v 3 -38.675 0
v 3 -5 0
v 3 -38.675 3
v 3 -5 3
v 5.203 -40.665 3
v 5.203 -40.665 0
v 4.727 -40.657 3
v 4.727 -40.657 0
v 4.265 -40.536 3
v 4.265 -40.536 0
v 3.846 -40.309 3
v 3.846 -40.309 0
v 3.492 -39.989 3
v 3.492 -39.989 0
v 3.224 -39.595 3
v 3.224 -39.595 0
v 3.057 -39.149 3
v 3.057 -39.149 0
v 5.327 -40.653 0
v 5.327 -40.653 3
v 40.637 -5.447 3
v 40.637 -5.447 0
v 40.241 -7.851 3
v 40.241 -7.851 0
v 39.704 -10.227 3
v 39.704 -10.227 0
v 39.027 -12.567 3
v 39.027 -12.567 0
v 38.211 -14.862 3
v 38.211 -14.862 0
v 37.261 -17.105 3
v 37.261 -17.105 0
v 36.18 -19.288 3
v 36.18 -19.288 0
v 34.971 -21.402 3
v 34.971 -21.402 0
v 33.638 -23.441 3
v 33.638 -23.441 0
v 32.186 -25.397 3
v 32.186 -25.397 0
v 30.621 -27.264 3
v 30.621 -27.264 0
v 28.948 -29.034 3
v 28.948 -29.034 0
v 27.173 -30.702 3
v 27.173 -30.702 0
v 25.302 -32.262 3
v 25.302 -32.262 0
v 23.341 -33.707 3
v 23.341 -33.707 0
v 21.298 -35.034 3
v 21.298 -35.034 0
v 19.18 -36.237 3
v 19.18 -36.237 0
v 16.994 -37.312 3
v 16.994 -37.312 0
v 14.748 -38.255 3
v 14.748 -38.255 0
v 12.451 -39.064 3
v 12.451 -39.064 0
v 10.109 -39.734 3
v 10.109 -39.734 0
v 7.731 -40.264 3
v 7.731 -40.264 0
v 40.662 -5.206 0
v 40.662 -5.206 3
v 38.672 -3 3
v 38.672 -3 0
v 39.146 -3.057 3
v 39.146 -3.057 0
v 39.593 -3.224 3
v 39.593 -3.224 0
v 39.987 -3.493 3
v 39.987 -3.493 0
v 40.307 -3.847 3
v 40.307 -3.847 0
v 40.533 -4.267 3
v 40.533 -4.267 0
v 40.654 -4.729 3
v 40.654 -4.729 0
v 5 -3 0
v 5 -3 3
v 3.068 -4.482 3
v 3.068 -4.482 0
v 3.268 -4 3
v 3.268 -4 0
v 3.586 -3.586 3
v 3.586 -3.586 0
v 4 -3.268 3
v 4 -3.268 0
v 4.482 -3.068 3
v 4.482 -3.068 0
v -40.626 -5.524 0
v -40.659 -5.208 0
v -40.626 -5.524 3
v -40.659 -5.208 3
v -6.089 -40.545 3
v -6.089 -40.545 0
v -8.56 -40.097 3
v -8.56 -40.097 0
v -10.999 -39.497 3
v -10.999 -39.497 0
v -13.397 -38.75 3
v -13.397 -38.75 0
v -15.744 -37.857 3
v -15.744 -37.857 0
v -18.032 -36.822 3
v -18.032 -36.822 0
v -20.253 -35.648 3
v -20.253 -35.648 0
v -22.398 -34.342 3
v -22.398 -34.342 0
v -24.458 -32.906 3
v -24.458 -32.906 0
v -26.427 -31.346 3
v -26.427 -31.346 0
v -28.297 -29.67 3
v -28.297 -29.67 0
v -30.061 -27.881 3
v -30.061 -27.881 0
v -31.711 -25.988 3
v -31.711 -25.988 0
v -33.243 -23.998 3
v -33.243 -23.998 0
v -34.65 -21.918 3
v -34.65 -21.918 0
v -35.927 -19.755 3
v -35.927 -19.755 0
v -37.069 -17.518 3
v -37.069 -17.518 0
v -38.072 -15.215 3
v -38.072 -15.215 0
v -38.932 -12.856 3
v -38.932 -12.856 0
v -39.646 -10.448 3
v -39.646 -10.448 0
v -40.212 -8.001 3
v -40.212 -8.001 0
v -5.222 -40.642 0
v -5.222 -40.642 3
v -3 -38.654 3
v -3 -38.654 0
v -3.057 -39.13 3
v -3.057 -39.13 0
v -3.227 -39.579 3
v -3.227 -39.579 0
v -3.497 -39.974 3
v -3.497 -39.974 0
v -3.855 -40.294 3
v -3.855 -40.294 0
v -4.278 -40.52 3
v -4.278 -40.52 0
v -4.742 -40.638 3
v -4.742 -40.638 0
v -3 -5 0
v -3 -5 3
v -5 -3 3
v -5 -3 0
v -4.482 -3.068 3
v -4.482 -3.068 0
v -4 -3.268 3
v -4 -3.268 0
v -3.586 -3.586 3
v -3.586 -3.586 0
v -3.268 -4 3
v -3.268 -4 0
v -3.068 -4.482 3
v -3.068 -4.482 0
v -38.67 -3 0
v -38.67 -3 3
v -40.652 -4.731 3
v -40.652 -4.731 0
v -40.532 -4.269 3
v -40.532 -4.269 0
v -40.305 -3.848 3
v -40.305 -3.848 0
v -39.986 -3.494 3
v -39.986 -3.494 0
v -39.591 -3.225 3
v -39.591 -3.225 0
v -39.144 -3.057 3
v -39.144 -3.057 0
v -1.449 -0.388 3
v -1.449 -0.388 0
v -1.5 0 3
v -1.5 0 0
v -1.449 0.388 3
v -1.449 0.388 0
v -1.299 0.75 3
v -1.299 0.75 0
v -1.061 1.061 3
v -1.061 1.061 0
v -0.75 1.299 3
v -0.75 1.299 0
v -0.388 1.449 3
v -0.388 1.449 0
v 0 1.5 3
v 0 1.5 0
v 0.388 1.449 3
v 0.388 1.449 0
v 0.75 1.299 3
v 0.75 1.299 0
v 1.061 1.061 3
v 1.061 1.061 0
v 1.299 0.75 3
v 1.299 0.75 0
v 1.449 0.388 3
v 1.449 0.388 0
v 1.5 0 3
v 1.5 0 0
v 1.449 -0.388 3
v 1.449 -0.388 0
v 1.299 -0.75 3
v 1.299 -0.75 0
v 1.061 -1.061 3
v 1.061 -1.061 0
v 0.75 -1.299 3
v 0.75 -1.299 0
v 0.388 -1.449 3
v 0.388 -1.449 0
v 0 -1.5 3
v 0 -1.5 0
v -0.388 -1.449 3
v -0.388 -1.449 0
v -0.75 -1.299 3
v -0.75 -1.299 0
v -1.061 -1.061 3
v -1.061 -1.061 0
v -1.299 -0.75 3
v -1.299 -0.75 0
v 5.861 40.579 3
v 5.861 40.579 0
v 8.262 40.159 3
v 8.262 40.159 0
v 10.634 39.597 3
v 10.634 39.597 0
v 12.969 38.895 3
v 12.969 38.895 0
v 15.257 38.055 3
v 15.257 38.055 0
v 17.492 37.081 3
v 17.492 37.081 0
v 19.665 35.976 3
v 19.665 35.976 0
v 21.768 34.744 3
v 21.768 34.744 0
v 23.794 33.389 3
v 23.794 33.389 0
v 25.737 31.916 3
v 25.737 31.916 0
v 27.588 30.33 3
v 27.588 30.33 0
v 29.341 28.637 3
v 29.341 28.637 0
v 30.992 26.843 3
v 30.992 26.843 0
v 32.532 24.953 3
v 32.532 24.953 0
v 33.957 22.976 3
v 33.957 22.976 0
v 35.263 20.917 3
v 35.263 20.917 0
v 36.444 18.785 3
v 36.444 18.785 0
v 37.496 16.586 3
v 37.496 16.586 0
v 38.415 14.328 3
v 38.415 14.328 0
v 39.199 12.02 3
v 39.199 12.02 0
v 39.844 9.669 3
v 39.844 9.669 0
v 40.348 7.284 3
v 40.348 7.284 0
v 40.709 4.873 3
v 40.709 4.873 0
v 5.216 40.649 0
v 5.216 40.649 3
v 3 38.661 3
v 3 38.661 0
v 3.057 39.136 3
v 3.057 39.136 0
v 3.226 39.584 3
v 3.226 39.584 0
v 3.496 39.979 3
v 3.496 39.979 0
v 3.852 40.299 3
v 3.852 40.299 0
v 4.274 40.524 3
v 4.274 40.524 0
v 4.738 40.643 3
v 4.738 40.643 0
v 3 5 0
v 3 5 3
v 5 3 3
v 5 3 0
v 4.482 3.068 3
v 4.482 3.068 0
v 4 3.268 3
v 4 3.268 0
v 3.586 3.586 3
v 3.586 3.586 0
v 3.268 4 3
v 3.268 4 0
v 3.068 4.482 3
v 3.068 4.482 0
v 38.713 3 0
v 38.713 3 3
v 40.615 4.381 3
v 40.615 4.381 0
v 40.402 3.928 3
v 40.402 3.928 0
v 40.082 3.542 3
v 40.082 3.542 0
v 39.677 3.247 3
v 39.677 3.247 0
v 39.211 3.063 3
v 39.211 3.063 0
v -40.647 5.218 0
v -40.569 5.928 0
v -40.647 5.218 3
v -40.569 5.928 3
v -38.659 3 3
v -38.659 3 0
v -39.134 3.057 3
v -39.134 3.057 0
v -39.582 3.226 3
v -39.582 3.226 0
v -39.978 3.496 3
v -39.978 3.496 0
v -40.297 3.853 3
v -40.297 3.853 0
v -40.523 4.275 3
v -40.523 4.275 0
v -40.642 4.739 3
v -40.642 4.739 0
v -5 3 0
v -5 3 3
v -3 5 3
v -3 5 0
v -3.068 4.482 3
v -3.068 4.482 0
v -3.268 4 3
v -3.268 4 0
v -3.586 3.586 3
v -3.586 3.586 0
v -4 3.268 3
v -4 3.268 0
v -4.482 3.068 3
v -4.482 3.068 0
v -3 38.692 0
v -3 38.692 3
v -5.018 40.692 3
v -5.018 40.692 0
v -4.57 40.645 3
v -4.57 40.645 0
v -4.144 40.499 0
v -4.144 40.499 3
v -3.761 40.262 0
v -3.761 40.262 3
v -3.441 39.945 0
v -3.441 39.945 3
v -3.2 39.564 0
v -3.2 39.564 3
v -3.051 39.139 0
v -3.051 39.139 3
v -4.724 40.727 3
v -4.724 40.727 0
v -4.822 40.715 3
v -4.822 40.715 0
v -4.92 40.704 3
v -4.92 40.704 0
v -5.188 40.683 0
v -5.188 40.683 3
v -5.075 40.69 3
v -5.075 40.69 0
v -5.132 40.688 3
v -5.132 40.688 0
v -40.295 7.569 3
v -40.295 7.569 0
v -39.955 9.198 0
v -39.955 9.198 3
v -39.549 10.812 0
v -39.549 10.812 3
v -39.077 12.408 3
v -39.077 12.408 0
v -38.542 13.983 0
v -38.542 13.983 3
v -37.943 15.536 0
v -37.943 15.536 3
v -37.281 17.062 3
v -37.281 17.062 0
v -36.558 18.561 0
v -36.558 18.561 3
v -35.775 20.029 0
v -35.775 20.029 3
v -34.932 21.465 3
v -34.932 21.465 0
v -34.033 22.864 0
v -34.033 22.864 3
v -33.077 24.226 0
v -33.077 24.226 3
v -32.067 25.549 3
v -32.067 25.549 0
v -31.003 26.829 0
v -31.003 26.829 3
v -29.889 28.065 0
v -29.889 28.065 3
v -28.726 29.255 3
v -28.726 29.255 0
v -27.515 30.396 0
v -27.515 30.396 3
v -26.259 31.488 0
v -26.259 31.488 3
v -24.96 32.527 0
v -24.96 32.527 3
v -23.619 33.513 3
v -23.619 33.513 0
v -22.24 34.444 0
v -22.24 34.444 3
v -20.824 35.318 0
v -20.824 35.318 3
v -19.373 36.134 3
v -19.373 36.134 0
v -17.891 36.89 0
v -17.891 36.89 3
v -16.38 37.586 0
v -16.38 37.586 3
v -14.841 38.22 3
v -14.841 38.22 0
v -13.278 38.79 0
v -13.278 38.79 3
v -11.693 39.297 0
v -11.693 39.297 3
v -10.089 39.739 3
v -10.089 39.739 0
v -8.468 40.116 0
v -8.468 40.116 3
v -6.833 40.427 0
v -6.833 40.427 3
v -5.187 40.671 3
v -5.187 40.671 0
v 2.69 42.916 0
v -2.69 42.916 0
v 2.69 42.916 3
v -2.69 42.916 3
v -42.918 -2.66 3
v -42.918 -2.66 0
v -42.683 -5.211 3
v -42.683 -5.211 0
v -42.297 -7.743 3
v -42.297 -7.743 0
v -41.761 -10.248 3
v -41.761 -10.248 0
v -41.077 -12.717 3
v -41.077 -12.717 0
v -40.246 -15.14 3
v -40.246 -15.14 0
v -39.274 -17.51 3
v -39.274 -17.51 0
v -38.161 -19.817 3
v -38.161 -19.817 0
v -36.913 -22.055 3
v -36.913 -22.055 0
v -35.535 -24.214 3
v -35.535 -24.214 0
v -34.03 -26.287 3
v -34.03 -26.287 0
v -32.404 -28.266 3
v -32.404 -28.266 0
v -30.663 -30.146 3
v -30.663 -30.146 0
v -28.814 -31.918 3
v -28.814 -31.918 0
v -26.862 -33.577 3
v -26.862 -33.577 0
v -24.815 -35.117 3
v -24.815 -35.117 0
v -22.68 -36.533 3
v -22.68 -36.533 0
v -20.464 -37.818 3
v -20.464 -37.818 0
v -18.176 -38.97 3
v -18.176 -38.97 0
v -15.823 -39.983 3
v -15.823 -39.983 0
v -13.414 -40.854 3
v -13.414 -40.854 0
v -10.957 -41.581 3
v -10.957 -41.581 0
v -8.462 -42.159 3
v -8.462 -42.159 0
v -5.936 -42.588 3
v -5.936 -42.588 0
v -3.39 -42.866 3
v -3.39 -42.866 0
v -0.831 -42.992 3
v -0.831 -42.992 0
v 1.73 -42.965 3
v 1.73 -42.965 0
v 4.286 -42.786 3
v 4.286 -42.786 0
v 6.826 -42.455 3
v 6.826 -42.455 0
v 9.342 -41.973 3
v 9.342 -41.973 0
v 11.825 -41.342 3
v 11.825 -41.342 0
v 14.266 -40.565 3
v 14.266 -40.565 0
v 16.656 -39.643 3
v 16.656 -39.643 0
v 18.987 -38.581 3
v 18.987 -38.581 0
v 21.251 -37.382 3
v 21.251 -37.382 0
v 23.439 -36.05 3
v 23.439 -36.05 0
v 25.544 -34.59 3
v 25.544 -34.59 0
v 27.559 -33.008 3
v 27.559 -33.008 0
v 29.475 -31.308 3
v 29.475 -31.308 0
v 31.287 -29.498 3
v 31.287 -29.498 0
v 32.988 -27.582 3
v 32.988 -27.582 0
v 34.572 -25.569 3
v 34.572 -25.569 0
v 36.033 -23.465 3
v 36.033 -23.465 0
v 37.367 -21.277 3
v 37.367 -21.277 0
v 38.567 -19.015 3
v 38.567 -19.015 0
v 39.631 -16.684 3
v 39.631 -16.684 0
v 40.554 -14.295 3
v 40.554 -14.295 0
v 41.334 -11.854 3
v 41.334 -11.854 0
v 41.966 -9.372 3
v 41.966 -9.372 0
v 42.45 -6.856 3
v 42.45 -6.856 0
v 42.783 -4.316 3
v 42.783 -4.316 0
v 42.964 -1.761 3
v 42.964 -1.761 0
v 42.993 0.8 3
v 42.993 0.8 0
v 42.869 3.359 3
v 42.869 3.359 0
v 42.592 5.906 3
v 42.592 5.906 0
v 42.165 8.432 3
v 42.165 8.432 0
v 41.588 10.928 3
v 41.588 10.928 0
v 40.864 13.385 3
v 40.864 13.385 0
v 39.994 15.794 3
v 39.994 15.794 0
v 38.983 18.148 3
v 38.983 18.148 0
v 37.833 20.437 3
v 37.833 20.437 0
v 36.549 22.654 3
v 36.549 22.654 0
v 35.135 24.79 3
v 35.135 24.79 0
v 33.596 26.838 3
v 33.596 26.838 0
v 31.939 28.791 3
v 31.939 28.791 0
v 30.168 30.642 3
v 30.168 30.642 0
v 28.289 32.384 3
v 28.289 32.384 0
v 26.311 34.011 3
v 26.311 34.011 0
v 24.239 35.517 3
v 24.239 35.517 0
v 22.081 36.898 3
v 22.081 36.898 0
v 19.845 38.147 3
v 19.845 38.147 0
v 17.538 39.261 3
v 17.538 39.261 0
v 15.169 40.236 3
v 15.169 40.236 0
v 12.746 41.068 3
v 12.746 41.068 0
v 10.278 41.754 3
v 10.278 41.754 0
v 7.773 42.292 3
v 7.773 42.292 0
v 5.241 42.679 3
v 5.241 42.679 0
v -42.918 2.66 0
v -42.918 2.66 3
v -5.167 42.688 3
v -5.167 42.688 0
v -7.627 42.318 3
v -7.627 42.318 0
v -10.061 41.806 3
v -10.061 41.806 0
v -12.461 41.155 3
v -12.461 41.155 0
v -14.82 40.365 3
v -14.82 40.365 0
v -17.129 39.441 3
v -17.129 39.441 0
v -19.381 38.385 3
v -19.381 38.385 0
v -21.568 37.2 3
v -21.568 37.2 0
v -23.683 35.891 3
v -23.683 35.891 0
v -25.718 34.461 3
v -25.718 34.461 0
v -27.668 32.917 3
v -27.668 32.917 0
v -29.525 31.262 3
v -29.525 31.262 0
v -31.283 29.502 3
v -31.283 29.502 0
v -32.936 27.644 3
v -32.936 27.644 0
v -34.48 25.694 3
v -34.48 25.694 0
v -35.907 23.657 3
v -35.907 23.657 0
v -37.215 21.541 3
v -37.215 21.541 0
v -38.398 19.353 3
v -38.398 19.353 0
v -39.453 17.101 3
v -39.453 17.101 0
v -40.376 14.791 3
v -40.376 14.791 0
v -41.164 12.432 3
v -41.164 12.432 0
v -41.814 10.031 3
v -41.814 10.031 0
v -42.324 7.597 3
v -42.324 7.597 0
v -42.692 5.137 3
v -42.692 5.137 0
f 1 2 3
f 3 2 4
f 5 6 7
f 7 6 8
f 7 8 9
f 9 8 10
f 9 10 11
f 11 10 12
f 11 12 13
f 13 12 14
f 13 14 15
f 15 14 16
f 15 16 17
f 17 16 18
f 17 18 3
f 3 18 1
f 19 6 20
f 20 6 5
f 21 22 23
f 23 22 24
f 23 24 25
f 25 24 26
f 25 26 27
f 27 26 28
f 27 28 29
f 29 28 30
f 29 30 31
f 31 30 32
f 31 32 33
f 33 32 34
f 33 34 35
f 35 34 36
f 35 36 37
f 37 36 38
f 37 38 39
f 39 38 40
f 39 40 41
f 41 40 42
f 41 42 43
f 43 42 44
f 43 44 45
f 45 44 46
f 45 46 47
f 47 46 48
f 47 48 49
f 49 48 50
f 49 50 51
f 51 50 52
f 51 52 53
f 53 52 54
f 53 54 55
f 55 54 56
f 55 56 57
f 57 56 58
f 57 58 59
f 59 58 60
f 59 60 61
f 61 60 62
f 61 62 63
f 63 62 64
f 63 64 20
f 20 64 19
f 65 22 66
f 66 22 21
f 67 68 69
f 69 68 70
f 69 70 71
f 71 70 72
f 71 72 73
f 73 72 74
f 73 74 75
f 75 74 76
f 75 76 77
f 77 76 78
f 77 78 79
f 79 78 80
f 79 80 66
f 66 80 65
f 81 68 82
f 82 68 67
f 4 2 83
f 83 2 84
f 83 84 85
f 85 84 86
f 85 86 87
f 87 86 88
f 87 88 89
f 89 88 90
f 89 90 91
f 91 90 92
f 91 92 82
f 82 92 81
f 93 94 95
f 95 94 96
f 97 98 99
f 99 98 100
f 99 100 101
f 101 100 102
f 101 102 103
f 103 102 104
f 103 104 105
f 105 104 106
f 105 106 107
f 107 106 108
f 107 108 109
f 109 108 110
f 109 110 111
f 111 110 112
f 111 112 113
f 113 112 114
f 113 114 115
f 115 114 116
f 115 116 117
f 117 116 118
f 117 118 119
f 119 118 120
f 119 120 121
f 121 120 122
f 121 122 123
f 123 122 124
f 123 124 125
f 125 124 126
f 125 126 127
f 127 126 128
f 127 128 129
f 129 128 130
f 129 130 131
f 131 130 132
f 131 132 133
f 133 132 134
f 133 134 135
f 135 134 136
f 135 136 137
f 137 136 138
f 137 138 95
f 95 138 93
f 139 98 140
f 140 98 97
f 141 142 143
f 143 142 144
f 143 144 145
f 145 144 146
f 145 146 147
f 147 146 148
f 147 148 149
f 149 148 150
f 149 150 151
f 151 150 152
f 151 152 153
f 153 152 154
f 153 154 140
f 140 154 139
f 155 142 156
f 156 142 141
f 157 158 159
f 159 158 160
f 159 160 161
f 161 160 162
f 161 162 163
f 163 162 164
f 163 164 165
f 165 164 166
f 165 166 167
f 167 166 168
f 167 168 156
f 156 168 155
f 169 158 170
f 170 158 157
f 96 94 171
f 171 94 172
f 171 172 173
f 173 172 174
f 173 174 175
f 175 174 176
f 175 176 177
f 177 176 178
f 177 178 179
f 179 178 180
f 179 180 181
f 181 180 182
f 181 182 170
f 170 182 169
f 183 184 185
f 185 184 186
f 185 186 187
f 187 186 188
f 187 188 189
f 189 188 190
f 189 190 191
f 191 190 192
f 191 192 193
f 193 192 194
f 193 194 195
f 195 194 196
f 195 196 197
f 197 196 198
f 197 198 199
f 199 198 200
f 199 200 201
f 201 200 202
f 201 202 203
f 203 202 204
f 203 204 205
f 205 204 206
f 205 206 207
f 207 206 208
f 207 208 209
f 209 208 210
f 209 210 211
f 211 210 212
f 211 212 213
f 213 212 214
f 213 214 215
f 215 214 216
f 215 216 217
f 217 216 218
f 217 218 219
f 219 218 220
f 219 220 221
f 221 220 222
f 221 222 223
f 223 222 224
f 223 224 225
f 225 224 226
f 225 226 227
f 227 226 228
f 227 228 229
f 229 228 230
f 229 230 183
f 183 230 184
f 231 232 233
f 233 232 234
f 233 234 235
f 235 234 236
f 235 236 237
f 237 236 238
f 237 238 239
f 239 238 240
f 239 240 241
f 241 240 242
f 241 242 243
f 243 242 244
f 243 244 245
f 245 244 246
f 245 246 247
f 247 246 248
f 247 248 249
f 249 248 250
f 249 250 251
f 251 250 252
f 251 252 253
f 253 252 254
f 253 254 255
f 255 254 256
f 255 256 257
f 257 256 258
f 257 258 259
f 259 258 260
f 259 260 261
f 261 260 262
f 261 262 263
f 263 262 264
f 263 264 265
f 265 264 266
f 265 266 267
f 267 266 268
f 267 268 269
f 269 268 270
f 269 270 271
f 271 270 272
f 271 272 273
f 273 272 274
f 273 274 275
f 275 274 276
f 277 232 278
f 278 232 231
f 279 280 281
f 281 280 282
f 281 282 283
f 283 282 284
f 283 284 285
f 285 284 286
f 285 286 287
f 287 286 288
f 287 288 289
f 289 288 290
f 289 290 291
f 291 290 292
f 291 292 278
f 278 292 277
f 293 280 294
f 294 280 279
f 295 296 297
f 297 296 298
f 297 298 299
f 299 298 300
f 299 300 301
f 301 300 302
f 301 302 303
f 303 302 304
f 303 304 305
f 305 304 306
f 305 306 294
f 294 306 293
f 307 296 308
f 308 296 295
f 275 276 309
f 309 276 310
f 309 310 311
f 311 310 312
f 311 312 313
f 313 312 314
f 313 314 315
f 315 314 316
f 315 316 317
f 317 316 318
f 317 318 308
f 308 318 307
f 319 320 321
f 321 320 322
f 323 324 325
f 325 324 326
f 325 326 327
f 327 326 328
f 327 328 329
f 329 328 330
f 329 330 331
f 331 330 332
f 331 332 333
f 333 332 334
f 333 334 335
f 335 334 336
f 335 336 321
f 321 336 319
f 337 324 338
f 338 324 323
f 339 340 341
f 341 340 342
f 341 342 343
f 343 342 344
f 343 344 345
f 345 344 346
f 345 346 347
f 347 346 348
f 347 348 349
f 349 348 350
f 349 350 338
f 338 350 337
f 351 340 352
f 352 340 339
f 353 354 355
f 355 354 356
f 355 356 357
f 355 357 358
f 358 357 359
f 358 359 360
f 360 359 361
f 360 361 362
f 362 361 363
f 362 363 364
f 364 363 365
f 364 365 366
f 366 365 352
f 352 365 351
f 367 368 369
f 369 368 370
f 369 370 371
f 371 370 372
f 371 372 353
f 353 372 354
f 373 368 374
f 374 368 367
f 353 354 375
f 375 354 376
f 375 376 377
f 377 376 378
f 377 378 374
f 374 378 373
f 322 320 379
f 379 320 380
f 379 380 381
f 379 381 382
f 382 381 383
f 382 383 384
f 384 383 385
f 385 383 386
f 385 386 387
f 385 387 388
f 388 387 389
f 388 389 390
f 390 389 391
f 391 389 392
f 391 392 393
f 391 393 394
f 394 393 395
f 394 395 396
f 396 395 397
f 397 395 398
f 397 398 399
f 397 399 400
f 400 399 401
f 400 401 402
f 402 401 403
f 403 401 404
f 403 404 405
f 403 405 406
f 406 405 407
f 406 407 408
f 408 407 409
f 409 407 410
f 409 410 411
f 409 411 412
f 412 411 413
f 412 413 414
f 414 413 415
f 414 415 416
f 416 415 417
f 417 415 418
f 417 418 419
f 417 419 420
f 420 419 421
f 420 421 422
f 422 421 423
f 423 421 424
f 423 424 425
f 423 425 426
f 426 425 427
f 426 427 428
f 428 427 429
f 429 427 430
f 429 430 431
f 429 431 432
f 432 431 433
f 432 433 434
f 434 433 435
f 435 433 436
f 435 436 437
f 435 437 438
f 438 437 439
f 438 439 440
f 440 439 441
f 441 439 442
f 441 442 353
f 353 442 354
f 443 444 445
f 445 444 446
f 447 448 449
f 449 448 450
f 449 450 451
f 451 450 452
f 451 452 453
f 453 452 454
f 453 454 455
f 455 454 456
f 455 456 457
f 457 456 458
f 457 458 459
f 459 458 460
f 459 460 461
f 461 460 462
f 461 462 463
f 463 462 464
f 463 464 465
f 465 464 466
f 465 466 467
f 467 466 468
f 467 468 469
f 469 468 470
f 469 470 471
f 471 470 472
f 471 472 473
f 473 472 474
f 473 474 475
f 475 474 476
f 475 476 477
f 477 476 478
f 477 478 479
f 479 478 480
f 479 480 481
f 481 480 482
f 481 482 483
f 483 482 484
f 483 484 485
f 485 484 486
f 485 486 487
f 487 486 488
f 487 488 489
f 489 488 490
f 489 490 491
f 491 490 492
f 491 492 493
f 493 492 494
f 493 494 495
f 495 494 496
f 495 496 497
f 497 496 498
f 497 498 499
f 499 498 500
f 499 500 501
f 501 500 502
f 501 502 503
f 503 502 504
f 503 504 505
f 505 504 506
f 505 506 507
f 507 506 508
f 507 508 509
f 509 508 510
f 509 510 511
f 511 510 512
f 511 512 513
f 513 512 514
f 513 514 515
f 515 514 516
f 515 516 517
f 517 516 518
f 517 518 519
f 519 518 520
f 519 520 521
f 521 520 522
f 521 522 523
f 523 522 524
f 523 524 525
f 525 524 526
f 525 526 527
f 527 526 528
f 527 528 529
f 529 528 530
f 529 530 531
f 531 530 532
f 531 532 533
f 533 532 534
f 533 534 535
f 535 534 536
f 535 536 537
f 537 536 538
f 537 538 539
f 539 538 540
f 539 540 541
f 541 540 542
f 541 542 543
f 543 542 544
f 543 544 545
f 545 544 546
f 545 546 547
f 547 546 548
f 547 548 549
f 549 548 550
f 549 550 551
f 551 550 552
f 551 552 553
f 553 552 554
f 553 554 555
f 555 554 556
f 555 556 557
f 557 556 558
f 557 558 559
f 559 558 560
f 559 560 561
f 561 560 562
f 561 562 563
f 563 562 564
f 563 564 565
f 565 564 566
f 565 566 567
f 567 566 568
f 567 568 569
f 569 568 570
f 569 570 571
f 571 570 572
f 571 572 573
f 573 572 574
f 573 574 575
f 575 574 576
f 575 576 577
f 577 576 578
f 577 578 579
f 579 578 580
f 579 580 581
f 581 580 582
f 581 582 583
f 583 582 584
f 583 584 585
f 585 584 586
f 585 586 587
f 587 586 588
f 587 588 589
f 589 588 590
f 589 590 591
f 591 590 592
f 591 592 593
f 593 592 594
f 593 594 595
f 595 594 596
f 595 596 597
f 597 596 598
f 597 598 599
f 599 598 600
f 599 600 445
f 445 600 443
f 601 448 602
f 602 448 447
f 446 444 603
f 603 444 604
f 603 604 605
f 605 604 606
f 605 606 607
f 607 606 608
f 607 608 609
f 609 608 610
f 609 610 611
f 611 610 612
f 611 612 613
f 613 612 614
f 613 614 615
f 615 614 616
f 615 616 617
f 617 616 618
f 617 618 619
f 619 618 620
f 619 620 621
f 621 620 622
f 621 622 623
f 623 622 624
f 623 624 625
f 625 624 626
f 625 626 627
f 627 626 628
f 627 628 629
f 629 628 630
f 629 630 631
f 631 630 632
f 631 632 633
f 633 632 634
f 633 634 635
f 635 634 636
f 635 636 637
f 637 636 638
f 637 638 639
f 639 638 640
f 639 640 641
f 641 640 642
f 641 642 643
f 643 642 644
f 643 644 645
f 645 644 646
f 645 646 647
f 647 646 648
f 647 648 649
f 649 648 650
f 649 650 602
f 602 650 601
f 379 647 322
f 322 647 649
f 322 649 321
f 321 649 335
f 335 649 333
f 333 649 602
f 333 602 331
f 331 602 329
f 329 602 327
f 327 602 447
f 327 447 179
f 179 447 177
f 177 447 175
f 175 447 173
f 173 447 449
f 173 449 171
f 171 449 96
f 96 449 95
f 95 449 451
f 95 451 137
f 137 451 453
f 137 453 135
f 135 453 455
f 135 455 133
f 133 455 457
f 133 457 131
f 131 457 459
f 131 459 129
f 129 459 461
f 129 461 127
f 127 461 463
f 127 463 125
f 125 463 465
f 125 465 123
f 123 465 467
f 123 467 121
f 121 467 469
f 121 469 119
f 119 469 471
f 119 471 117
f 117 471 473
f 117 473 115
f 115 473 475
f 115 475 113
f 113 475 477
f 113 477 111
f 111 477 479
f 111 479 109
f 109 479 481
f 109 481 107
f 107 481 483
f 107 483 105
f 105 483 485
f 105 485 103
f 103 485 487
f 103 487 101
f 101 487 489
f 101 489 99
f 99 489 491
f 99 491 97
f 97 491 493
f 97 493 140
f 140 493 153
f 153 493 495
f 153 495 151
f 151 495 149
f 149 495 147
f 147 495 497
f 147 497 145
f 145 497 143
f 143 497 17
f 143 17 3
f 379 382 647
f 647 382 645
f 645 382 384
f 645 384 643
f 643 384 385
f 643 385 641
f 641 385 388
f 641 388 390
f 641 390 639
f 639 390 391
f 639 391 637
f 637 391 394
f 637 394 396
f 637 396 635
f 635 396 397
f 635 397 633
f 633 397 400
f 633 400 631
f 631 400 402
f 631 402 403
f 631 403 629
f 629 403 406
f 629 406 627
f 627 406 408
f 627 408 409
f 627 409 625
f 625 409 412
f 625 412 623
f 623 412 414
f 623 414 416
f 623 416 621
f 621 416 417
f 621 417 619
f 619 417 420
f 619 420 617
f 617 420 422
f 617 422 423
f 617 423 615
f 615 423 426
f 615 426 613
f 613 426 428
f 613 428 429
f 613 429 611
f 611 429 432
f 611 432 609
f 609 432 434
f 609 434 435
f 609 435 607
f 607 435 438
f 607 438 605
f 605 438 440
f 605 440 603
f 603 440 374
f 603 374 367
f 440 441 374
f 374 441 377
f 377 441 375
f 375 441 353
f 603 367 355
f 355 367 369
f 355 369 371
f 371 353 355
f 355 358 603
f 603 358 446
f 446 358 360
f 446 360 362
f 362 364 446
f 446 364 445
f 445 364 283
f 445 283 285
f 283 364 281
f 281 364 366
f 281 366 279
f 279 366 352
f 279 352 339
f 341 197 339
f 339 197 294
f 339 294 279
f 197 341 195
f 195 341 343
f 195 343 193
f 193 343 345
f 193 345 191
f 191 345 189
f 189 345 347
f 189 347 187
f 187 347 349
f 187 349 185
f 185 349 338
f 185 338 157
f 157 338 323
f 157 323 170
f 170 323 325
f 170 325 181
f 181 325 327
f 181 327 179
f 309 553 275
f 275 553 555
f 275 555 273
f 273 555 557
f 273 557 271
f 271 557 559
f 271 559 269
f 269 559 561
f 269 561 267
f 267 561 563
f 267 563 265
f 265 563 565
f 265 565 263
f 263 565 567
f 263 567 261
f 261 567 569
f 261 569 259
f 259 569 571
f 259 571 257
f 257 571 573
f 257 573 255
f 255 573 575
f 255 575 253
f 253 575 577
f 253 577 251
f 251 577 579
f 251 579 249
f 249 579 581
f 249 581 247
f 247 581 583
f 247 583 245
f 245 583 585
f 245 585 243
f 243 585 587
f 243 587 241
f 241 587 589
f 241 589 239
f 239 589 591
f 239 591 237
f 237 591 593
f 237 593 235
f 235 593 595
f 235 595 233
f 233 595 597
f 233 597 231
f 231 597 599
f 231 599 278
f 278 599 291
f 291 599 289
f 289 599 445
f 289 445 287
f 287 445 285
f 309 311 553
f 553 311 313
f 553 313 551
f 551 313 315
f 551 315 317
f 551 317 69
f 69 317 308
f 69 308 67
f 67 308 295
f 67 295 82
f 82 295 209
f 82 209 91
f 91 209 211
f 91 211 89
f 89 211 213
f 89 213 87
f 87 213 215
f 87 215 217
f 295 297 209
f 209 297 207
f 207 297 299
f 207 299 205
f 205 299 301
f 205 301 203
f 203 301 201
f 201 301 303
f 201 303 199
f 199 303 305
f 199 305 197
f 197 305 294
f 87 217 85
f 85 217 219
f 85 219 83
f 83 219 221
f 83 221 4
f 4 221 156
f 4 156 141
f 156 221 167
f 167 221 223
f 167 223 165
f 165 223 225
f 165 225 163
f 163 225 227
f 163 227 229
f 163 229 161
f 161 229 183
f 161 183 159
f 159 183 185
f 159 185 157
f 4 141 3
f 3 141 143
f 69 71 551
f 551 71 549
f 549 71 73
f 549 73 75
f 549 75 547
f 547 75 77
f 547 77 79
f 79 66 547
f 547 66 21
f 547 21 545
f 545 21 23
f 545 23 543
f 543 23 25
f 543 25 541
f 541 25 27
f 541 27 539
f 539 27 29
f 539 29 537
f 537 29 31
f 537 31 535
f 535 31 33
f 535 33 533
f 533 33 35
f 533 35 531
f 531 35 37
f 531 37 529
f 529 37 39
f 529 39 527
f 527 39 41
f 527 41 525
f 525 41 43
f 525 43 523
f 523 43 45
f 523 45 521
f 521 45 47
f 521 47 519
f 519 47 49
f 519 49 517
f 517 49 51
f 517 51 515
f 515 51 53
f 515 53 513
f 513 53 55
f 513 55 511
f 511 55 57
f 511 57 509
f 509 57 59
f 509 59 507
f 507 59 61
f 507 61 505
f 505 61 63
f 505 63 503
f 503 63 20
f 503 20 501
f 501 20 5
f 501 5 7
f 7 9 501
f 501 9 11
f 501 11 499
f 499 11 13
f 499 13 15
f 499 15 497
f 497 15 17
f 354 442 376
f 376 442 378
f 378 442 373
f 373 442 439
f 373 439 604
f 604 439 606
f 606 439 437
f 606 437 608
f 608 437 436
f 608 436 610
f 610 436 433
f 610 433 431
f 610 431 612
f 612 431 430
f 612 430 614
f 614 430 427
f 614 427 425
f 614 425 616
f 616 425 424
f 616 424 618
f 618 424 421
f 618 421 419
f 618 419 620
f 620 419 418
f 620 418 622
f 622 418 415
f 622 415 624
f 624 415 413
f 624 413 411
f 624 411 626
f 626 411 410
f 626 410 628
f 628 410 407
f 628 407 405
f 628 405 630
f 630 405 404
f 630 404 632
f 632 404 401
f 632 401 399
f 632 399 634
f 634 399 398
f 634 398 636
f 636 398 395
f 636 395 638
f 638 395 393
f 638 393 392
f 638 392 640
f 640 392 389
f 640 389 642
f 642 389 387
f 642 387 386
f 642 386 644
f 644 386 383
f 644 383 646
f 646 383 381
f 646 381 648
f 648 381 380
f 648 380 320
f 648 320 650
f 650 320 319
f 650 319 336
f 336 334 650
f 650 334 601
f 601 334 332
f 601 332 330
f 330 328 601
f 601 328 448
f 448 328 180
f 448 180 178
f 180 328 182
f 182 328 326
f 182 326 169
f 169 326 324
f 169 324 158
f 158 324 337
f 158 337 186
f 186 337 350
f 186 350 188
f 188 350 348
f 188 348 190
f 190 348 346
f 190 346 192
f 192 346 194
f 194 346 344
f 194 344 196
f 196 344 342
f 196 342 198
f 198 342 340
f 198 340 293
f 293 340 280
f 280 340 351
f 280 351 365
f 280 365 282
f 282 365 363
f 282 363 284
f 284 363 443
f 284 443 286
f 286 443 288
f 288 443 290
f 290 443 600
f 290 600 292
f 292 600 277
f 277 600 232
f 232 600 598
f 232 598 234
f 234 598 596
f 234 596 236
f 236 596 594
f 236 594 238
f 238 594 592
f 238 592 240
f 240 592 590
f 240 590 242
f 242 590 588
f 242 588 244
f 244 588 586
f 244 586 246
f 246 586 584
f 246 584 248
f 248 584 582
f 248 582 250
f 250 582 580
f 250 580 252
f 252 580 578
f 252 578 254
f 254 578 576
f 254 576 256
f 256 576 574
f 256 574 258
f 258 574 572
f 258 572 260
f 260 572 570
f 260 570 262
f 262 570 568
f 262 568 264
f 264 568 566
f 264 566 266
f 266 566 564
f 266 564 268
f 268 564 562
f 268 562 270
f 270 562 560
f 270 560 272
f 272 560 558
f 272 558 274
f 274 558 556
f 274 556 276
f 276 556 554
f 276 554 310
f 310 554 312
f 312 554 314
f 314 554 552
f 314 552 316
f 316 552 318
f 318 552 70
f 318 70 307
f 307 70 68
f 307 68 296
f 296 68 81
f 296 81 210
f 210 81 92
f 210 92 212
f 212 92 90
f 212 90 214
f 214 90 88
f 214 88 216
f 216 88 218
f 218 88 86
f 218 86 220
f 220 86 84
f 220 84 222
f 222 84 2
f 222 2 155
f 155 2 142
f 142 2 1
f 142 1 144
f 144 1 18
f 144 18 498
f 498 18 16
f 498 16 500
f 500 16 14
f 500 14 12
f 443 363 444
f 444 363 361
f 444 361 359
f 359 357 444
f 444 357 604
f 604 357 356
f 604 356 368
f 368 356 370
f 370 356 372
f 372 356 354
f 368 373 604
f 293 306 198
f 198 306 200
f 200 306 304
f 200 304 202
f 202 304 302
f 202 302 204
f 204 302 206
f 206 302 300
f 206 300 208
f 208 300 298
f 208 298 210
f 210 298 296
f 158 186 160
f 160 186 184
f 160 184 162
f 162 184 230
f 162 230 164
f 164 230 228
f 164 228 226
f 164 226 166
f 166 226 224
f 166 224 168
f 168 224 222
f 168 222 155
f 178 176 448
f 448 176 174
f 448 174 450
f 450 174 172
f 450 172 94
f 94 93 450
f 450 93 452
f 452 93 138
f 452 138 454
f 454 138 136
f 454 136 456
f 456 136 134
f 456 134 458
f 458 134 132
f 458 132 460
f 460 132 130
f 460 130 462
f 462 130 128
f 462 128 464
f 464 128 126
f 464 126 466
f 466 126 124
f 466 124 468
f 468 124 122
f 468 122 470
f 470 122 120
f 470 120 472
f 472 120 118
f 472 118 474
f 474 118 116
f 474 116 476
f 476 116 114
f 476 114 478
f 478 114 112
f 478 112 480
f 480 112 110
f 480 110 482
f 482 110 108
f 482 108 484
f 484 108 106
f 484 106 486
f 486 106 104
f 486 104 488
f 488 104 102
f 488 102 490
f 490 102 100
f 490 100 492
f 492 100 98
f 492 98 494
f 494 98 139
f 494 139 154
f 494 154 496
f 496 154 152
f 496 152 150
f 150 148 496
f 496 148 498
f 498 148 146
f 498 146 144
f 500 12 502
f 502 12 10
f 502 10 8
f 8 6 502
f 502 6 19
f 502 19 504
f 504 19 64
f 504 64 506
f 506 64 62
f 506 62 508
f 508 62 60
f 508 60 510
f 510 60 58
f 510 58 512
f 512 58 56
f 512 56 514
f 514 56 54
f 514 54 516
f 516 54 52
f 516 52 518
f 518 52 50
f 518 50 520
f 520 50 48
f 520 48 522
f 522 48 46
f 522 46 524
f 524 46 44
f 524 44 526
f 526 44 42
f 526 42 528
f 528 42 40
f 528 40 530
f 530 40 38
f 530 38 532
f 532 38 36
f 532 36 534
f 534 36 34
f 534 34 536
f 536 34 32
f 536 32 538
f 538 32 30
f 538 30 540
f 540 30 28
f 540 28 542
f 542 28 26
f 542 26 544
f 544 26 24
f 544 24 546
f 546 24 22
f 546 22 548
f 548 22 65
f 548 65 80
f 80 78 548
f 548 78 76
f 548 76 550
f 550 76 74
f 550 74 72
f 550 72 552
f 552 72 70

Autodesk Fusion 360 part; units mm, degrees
sketch "Sketch1" plane through (0, 0, 0) normal (0, 0, 1) x (1, 0, 0)
  circle A0 centre (0, 0) radius 43
  line L0 (-3, 5) -> (-3, 38.6919)
  line L1 (-3, 42.9158) -> (3, 42.9158)
  line L2 (3, 38.6608) -> (3, 5)
  line L3 (5, -3) -> (38.6722, -3)
  line L4 (42.8866, -3) -> (42.8866, 3)
  line L5 (38.7134, 3) -> (5, 3)
  line L6 (3, -5) -> (3, -38.6755)
  line L7 (3, -42) -> (-3, -42)
  line L8 (-3, -38.6545) -> (-3, -5)
  line L9 (-5, 3) -> (-38.6589, 3)
  line L10 (-42.9177, 3) -> (-42.9177, -3)
  line L11 (-38.6701, -3) -> (-5, -3)
  arc A1 (3, 5) -> (5, 3) centre (5, 5) ccw
  arc A2 (5, -3) -> (3, -5) centre (5, -5) ccw
  arc A3 (-3, -5) -> (-5, -3) centre (-5, -5) ccw
  arc A4 (-5, 3) -> (-3, 5) centre (-5, 5) ccw
  line L12 (5.2163, 40.649) -> (5.8611, 40.5789)
  arc A5 (5.2163, 40.649) -> (3, 38.6608) centre (5, 38.6608) ccw
  line L13 (-5.1884, 40.683) -> (-4.7244, 40.7269)
  arc A6 (-3, 38.6919) -> (-5.1884, 40.683) centre (-5, 38.6919) ccw
  arc A7 (38.7134, 3) -> (40.7062, 5.169) centre (38.7134, 5) ccw
  line L14 (40.6615, -5.2061) -> (40.6365, -5.4474)
  arc A8 (40.6615, -5.2061) -> (38.6722, -3) centre (38.6722, -5) ccw
  line L15 (5.2032, -40.6651) -> (5.3266, -40.6525)
  arc A9 (3, -38.6755) -> (5.2032, -40.6651) centre (5, -38.6755) ccw
  line L16 (-5.2218, -40.6421) -> (-6.0887, -40.5454)
  arc A10 (-5.2218, -40.6421) -> (-3, -38.6545) centre (-5, -38.6545) ccw
  line L17 (-40.6592, -5.208) -> (-40.6262, -5.5237)
  arc A11 (-38.6701, -3) -> (-40.6592, -5.208) centre (-38.6701, -5) ccw
  line L18 (-40.647, 5.2179) -> (-40.5692, 5.9278)
  arc A12 (-40.647, 5.2179) -> (-38.6589, 3) centre (-38.6589, 5) ccw
  arc A13 (5.3266, -40.6525) -> (40.6365, -5.4474) centre (0, 0) ccw
  arc A14 (-40.6262, -5.5237) -> (-6.0887, -40.5454) centre (0, 0) ccw
  arc A15 (40.7093, 4.8734) -> (5.8611, 40.5789) centre (0, 0) ccw
  arc A16 (-4.7244, 40.7269) -> (-40.5692, 5.9278) centre (0, 0) ccw
  circle A17 centre (0, 0) radius 1.5
  dimension "d1" = 86
  dimension "d2" = 82
  dimension "d7" = 2
  dimension "d8" = 2
  dimension "d9" = 2
  dimension "d10" = 2
  dimension "d11" = 2
  dimension "d12" = 2
  dimension "d13" = 2
  dimension "d14" = 2
  dimension "d15" = 2
  dimension "d16" = 2
  dimension "d17" = 2
  dimension "d18" = 2
  dimension "d19" = 3
extrude "Extrude1" add sketch "Sketch1" along normal blind 3 contours A0 L1 L10
